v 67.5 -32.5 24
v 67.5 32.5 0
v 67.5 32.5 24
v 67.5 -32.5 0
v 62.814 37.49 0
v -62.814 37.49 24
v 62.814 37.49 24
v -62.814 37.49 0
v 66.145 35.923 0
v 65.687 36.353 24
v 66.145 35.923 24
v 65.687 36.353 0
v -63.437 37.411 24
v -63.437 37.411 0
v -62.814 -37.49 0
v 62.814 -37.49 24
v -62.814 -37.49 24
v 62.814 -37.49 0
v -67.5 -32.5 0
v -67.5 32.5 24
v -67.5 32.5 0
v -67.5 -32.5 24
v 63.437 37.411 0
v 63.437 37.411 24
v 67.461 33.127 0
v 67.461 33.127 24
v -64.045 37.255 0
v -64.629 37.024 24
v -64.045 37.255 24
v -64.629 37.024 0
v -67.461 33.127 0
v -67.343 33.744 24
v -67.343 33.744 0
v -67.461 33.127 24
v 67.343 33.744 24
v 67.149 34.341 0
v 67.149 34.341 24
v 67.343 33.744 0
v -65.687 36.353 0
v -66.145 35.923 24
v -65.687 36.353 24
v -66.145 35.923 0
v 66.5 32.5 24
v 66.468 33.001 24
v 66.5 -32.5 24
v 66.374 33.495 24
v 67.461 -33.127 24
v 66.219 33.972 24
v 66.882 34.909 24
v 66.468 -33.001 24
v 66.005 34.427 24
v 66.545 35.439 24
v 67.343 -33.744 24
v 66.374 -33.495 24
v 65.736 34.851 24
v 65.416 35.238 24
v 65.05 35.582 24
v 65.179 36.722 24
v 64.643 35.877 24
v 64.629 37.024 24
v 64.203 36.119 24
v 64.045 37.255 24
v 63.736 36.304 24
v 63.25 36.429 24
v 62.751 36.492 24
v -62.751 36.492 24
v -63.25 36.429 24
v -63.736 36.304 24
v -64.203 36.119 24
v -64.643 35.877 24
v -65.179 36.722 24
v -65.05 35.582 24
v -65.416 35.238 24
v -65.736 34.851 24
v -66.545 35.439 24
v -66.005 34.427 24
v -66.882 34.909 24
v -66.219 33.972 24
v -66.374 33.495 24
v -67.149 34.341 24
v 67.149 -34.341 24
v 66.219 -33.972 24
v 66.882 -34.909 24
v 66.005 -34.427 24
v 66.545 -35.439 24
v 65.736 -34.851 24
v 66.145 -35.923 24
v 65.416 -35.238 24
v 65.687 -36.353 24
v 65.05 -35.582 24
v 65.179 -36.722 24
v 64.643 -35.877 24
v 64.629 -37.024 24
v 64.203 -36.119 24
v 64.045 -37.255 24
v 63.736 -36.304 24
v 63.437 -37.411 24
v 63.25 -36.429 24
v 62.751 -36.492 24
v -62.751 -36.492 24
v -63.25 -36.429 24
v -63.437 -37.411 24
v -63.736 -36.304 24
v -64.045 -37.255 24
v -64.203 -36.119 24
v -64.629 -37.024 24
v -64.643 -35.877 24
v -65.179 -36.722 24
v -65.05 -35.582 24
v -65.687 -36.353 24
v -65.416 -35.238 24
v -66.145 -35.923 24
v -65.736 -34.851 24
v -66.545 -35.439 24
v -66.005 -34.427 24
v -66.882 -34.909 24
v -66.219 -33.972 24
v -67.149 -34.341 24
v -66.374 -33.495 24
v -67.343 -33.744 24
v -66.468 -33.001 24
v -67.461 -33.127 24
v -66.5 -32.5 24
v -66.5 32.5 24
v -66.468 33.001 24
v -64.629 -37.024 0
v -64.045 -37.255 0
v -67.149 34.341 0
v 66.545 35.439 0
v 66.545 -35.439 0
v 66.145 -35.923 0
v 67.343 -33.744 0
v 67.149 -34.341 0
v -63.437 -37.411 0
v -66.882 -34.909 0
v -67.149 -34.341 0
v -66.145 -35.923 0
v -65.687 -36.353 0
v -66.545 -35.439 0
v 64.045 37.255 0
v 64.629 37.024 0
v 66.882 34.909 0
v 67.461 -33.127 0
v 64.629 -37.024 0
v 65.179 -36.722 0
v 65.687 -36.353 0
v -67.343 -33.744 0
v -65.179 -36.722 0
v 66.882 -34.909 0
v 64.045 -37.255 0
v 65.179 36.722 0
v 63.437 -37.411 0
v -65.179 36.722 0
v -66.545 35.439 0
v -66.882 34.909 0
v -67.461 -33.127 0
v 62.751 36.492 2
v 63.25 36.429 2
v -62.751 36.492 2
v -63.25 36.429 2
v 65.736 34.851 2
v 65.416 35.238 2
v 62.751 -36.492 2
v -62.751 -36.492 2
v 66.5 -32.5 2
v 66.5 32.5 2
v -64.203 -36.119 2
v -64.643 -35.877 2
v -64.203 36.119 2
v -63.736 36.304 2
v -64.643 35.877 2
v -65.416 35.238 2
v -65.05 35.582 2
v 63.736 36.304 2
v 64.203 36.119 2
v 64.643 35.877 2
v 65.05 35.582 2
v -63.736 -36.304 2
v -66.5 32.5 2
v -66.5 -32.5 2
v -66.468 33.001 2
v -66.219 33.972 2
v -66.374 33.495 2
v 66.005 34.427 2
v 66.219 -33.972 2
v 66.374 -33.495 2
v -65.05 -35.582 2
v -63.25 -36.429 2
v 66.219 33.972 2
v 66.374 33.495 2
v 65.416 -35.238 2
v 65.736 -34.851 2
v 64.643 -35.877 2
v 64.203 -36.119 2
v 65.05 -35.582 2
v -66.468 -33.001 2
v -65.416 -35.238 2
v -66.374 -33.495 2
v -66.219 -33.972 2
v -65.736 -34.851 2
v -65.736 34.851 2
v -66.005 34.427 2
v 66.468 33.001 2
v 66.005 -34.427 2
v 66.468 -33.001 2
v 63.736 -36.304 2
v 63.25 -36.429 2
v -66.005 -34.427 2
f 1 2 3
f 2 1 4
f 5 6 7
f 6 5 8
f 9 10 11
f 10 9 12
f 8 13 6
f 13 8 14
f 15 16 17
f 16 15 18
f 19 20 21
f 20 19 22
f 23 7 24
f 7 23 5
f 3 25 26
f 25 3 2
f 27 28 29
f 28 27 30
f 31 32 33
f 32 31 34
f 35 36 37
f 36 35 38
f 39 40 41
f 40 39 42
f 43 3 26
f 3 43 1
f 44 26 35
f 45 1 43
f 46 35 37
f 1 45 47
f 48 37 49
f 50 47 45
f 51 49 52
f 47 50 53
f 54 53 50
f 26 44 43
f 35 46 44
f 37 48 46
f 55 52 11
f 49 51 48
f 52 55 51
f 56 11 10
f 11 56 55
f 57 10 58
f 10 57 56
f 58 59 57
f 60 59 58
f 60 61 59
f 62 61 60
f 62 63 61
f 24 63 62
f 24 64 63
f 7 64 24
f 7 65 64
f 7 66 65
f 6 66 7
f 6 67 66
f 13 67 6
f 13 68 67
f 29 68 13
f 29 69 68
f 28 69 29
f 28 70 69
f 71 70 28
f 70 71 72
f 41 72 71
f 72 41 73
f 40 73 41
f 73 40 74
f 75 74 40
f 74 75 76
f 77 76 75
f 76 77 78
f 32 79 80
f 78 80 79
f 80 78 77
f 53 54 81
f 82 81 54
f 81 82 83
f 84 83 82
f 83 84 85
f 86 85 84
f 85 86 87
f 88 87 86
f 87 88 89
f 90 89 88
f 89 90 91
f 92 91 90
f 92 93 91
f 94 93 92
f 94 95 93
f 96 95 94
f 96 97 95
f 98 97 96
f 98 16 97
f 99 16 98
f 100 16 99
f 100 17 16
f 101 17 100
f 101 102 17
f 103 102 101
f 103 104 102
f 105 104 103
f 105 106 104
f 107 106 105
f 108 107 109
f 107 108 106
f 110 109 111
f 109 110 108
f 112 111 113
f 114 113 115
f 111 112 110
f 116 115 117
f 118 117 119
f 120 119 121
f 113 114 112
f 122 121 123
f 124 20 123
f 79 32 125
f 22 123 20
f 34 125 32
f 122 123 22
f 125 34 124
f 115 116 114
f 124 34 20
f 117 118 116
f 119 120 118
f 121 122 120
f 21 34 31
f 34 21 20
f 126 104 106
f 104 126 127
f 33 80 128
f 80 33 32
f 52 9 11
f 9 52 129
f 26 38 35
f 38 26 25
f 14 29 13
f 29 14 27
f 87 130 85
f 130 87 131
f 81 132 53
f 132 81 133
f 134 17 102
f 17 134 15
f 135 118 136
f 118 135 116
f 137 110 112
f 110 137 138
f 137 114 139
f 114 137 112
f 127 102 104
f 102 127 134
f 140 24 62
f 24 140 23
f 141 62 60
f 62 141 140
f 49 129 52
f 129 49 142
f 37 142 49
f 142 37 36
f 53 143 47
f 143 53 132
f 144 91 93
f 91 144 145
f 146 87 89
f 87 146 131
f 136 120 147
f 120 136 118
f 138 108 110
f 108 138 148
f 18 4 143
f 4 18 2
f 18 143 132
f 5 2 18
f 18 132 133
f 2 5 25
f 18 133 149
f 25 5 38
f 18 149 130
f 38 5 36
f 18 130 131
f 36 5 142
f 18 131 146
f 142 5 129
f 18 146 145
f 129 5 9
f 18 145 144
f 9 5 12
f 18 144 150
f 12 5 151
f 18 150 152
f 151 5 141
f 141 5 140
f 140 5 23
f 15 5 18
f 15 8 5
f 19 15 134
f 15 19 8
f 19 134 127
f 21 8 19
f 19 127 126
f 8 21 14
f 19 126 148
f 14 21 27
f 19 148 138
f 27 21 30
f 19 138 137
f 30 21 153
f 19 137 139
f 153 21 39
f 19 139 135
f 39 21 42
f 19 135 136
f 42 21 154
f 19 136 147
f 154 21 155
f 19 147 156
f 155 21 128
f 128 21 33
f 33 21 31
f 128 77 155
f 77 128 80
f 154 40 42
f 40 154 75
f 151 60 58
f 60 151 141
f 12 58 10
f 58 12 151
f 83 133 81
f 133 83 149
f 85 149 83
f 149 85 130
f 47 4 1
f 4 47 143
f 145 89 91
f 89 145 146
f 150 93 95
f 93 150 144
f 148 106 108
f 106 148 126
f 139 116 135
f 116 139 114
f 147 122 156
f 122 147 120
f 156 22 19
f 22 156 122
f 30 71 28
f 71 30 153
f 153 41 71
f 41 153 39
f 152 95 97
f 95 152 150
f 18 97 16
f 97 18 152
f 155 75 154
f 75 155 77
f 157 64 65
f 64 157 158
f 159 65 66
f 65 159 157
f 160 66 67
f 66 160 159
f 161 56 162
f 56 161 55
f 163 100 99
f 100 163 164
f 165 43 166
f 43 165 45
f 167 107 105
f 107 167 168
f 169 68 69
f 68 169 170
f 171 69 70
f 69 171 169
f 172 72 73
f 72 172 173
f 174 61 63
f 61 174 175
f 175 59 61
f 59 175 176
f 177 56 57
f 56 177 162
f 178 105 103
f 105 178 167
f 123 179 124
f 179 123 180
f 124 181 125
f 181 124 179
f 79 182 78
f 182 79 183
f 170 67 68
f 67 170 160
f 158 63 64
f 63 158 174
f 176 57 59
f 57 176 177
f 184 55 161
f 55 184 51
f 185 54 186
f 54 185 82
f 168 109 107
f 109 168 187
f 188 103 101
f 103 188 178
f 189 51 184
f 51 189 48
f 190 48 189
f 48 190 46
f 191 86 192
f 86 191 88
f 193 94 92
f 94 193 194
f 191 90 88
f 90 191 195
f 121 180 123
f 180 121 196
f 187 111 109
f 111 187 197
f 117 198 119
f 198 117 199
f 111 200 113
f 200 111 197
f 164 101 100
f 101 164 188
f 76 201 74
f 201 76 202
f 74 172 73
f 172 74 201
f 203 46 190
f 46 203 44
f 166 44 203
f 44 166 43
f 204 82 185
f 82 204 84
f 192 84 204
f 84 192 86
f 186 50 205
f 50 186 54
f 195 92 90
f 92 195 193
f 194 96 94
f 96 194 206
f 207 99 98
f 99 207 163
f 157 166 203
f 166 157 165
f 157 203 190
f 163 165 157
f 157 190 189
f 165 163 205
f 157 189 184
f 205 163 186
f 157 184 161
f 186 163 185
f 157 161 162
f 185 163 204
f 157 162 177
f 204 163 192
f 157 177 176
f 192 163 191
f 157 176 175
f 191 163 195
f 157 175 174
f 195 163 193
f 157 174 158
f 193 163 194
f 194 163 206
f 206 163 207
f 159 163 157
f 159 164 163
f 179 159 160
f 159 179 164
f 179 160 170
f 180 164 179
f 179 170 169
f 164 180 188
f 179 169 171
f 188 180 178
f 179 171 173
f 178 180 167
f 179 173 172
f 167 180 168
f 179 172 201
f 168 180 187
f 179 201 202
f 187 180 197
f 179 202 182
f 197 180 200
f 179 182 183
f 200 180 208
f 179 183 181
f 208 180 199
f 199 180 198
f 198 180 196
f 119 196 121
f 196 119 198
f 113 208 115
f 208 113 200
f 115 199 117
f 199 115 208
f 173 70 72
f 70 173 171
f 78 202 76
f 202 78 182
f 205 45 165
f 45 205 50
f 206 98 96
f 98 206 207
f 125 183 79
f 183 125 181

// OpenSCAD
$fn = 50;


difference() {
	union() {
		hull() {
			translate(v = [-62.5000000000, 32.5000000000, 0]) {
				cylinder(h = 24, r = 5);
			}
			translate(v = [62.5000000000, 32.5000000000, 0]) {
				cylinder(h = 24, r = 5);
			}
			translate(v = [-62.5000000000, -32.5000000000, 0]) {
				cylinder(h = 24, r = 5);
			}
			translate(v = [62.5000000000, -32.5000000000, 0]) {
				cylinder(h = 24, r = 5);
			}
		}
	}
	union() {
		translate(v = [0, 0, 2]) {
			hull() {
				translate(v = [-62.5000000000, 32.5000000000, 0]) {
					cylinder(h = 22, r = 4);
				}
				translate(v = [62.5000000000, 32.5000000000, 0]) {
					cylinder(h = 22, r = 4);
				}
				translate(v = [-62.5000000000, -32.5000000000, 0]) {
					cylinder(h = 22, r = 4);
				}
				translate(v = [62.5000000000, -32.5000000000, 0]) {
					cylinder(h = 22, r = 4);
				}
			}
		}
	}
}
